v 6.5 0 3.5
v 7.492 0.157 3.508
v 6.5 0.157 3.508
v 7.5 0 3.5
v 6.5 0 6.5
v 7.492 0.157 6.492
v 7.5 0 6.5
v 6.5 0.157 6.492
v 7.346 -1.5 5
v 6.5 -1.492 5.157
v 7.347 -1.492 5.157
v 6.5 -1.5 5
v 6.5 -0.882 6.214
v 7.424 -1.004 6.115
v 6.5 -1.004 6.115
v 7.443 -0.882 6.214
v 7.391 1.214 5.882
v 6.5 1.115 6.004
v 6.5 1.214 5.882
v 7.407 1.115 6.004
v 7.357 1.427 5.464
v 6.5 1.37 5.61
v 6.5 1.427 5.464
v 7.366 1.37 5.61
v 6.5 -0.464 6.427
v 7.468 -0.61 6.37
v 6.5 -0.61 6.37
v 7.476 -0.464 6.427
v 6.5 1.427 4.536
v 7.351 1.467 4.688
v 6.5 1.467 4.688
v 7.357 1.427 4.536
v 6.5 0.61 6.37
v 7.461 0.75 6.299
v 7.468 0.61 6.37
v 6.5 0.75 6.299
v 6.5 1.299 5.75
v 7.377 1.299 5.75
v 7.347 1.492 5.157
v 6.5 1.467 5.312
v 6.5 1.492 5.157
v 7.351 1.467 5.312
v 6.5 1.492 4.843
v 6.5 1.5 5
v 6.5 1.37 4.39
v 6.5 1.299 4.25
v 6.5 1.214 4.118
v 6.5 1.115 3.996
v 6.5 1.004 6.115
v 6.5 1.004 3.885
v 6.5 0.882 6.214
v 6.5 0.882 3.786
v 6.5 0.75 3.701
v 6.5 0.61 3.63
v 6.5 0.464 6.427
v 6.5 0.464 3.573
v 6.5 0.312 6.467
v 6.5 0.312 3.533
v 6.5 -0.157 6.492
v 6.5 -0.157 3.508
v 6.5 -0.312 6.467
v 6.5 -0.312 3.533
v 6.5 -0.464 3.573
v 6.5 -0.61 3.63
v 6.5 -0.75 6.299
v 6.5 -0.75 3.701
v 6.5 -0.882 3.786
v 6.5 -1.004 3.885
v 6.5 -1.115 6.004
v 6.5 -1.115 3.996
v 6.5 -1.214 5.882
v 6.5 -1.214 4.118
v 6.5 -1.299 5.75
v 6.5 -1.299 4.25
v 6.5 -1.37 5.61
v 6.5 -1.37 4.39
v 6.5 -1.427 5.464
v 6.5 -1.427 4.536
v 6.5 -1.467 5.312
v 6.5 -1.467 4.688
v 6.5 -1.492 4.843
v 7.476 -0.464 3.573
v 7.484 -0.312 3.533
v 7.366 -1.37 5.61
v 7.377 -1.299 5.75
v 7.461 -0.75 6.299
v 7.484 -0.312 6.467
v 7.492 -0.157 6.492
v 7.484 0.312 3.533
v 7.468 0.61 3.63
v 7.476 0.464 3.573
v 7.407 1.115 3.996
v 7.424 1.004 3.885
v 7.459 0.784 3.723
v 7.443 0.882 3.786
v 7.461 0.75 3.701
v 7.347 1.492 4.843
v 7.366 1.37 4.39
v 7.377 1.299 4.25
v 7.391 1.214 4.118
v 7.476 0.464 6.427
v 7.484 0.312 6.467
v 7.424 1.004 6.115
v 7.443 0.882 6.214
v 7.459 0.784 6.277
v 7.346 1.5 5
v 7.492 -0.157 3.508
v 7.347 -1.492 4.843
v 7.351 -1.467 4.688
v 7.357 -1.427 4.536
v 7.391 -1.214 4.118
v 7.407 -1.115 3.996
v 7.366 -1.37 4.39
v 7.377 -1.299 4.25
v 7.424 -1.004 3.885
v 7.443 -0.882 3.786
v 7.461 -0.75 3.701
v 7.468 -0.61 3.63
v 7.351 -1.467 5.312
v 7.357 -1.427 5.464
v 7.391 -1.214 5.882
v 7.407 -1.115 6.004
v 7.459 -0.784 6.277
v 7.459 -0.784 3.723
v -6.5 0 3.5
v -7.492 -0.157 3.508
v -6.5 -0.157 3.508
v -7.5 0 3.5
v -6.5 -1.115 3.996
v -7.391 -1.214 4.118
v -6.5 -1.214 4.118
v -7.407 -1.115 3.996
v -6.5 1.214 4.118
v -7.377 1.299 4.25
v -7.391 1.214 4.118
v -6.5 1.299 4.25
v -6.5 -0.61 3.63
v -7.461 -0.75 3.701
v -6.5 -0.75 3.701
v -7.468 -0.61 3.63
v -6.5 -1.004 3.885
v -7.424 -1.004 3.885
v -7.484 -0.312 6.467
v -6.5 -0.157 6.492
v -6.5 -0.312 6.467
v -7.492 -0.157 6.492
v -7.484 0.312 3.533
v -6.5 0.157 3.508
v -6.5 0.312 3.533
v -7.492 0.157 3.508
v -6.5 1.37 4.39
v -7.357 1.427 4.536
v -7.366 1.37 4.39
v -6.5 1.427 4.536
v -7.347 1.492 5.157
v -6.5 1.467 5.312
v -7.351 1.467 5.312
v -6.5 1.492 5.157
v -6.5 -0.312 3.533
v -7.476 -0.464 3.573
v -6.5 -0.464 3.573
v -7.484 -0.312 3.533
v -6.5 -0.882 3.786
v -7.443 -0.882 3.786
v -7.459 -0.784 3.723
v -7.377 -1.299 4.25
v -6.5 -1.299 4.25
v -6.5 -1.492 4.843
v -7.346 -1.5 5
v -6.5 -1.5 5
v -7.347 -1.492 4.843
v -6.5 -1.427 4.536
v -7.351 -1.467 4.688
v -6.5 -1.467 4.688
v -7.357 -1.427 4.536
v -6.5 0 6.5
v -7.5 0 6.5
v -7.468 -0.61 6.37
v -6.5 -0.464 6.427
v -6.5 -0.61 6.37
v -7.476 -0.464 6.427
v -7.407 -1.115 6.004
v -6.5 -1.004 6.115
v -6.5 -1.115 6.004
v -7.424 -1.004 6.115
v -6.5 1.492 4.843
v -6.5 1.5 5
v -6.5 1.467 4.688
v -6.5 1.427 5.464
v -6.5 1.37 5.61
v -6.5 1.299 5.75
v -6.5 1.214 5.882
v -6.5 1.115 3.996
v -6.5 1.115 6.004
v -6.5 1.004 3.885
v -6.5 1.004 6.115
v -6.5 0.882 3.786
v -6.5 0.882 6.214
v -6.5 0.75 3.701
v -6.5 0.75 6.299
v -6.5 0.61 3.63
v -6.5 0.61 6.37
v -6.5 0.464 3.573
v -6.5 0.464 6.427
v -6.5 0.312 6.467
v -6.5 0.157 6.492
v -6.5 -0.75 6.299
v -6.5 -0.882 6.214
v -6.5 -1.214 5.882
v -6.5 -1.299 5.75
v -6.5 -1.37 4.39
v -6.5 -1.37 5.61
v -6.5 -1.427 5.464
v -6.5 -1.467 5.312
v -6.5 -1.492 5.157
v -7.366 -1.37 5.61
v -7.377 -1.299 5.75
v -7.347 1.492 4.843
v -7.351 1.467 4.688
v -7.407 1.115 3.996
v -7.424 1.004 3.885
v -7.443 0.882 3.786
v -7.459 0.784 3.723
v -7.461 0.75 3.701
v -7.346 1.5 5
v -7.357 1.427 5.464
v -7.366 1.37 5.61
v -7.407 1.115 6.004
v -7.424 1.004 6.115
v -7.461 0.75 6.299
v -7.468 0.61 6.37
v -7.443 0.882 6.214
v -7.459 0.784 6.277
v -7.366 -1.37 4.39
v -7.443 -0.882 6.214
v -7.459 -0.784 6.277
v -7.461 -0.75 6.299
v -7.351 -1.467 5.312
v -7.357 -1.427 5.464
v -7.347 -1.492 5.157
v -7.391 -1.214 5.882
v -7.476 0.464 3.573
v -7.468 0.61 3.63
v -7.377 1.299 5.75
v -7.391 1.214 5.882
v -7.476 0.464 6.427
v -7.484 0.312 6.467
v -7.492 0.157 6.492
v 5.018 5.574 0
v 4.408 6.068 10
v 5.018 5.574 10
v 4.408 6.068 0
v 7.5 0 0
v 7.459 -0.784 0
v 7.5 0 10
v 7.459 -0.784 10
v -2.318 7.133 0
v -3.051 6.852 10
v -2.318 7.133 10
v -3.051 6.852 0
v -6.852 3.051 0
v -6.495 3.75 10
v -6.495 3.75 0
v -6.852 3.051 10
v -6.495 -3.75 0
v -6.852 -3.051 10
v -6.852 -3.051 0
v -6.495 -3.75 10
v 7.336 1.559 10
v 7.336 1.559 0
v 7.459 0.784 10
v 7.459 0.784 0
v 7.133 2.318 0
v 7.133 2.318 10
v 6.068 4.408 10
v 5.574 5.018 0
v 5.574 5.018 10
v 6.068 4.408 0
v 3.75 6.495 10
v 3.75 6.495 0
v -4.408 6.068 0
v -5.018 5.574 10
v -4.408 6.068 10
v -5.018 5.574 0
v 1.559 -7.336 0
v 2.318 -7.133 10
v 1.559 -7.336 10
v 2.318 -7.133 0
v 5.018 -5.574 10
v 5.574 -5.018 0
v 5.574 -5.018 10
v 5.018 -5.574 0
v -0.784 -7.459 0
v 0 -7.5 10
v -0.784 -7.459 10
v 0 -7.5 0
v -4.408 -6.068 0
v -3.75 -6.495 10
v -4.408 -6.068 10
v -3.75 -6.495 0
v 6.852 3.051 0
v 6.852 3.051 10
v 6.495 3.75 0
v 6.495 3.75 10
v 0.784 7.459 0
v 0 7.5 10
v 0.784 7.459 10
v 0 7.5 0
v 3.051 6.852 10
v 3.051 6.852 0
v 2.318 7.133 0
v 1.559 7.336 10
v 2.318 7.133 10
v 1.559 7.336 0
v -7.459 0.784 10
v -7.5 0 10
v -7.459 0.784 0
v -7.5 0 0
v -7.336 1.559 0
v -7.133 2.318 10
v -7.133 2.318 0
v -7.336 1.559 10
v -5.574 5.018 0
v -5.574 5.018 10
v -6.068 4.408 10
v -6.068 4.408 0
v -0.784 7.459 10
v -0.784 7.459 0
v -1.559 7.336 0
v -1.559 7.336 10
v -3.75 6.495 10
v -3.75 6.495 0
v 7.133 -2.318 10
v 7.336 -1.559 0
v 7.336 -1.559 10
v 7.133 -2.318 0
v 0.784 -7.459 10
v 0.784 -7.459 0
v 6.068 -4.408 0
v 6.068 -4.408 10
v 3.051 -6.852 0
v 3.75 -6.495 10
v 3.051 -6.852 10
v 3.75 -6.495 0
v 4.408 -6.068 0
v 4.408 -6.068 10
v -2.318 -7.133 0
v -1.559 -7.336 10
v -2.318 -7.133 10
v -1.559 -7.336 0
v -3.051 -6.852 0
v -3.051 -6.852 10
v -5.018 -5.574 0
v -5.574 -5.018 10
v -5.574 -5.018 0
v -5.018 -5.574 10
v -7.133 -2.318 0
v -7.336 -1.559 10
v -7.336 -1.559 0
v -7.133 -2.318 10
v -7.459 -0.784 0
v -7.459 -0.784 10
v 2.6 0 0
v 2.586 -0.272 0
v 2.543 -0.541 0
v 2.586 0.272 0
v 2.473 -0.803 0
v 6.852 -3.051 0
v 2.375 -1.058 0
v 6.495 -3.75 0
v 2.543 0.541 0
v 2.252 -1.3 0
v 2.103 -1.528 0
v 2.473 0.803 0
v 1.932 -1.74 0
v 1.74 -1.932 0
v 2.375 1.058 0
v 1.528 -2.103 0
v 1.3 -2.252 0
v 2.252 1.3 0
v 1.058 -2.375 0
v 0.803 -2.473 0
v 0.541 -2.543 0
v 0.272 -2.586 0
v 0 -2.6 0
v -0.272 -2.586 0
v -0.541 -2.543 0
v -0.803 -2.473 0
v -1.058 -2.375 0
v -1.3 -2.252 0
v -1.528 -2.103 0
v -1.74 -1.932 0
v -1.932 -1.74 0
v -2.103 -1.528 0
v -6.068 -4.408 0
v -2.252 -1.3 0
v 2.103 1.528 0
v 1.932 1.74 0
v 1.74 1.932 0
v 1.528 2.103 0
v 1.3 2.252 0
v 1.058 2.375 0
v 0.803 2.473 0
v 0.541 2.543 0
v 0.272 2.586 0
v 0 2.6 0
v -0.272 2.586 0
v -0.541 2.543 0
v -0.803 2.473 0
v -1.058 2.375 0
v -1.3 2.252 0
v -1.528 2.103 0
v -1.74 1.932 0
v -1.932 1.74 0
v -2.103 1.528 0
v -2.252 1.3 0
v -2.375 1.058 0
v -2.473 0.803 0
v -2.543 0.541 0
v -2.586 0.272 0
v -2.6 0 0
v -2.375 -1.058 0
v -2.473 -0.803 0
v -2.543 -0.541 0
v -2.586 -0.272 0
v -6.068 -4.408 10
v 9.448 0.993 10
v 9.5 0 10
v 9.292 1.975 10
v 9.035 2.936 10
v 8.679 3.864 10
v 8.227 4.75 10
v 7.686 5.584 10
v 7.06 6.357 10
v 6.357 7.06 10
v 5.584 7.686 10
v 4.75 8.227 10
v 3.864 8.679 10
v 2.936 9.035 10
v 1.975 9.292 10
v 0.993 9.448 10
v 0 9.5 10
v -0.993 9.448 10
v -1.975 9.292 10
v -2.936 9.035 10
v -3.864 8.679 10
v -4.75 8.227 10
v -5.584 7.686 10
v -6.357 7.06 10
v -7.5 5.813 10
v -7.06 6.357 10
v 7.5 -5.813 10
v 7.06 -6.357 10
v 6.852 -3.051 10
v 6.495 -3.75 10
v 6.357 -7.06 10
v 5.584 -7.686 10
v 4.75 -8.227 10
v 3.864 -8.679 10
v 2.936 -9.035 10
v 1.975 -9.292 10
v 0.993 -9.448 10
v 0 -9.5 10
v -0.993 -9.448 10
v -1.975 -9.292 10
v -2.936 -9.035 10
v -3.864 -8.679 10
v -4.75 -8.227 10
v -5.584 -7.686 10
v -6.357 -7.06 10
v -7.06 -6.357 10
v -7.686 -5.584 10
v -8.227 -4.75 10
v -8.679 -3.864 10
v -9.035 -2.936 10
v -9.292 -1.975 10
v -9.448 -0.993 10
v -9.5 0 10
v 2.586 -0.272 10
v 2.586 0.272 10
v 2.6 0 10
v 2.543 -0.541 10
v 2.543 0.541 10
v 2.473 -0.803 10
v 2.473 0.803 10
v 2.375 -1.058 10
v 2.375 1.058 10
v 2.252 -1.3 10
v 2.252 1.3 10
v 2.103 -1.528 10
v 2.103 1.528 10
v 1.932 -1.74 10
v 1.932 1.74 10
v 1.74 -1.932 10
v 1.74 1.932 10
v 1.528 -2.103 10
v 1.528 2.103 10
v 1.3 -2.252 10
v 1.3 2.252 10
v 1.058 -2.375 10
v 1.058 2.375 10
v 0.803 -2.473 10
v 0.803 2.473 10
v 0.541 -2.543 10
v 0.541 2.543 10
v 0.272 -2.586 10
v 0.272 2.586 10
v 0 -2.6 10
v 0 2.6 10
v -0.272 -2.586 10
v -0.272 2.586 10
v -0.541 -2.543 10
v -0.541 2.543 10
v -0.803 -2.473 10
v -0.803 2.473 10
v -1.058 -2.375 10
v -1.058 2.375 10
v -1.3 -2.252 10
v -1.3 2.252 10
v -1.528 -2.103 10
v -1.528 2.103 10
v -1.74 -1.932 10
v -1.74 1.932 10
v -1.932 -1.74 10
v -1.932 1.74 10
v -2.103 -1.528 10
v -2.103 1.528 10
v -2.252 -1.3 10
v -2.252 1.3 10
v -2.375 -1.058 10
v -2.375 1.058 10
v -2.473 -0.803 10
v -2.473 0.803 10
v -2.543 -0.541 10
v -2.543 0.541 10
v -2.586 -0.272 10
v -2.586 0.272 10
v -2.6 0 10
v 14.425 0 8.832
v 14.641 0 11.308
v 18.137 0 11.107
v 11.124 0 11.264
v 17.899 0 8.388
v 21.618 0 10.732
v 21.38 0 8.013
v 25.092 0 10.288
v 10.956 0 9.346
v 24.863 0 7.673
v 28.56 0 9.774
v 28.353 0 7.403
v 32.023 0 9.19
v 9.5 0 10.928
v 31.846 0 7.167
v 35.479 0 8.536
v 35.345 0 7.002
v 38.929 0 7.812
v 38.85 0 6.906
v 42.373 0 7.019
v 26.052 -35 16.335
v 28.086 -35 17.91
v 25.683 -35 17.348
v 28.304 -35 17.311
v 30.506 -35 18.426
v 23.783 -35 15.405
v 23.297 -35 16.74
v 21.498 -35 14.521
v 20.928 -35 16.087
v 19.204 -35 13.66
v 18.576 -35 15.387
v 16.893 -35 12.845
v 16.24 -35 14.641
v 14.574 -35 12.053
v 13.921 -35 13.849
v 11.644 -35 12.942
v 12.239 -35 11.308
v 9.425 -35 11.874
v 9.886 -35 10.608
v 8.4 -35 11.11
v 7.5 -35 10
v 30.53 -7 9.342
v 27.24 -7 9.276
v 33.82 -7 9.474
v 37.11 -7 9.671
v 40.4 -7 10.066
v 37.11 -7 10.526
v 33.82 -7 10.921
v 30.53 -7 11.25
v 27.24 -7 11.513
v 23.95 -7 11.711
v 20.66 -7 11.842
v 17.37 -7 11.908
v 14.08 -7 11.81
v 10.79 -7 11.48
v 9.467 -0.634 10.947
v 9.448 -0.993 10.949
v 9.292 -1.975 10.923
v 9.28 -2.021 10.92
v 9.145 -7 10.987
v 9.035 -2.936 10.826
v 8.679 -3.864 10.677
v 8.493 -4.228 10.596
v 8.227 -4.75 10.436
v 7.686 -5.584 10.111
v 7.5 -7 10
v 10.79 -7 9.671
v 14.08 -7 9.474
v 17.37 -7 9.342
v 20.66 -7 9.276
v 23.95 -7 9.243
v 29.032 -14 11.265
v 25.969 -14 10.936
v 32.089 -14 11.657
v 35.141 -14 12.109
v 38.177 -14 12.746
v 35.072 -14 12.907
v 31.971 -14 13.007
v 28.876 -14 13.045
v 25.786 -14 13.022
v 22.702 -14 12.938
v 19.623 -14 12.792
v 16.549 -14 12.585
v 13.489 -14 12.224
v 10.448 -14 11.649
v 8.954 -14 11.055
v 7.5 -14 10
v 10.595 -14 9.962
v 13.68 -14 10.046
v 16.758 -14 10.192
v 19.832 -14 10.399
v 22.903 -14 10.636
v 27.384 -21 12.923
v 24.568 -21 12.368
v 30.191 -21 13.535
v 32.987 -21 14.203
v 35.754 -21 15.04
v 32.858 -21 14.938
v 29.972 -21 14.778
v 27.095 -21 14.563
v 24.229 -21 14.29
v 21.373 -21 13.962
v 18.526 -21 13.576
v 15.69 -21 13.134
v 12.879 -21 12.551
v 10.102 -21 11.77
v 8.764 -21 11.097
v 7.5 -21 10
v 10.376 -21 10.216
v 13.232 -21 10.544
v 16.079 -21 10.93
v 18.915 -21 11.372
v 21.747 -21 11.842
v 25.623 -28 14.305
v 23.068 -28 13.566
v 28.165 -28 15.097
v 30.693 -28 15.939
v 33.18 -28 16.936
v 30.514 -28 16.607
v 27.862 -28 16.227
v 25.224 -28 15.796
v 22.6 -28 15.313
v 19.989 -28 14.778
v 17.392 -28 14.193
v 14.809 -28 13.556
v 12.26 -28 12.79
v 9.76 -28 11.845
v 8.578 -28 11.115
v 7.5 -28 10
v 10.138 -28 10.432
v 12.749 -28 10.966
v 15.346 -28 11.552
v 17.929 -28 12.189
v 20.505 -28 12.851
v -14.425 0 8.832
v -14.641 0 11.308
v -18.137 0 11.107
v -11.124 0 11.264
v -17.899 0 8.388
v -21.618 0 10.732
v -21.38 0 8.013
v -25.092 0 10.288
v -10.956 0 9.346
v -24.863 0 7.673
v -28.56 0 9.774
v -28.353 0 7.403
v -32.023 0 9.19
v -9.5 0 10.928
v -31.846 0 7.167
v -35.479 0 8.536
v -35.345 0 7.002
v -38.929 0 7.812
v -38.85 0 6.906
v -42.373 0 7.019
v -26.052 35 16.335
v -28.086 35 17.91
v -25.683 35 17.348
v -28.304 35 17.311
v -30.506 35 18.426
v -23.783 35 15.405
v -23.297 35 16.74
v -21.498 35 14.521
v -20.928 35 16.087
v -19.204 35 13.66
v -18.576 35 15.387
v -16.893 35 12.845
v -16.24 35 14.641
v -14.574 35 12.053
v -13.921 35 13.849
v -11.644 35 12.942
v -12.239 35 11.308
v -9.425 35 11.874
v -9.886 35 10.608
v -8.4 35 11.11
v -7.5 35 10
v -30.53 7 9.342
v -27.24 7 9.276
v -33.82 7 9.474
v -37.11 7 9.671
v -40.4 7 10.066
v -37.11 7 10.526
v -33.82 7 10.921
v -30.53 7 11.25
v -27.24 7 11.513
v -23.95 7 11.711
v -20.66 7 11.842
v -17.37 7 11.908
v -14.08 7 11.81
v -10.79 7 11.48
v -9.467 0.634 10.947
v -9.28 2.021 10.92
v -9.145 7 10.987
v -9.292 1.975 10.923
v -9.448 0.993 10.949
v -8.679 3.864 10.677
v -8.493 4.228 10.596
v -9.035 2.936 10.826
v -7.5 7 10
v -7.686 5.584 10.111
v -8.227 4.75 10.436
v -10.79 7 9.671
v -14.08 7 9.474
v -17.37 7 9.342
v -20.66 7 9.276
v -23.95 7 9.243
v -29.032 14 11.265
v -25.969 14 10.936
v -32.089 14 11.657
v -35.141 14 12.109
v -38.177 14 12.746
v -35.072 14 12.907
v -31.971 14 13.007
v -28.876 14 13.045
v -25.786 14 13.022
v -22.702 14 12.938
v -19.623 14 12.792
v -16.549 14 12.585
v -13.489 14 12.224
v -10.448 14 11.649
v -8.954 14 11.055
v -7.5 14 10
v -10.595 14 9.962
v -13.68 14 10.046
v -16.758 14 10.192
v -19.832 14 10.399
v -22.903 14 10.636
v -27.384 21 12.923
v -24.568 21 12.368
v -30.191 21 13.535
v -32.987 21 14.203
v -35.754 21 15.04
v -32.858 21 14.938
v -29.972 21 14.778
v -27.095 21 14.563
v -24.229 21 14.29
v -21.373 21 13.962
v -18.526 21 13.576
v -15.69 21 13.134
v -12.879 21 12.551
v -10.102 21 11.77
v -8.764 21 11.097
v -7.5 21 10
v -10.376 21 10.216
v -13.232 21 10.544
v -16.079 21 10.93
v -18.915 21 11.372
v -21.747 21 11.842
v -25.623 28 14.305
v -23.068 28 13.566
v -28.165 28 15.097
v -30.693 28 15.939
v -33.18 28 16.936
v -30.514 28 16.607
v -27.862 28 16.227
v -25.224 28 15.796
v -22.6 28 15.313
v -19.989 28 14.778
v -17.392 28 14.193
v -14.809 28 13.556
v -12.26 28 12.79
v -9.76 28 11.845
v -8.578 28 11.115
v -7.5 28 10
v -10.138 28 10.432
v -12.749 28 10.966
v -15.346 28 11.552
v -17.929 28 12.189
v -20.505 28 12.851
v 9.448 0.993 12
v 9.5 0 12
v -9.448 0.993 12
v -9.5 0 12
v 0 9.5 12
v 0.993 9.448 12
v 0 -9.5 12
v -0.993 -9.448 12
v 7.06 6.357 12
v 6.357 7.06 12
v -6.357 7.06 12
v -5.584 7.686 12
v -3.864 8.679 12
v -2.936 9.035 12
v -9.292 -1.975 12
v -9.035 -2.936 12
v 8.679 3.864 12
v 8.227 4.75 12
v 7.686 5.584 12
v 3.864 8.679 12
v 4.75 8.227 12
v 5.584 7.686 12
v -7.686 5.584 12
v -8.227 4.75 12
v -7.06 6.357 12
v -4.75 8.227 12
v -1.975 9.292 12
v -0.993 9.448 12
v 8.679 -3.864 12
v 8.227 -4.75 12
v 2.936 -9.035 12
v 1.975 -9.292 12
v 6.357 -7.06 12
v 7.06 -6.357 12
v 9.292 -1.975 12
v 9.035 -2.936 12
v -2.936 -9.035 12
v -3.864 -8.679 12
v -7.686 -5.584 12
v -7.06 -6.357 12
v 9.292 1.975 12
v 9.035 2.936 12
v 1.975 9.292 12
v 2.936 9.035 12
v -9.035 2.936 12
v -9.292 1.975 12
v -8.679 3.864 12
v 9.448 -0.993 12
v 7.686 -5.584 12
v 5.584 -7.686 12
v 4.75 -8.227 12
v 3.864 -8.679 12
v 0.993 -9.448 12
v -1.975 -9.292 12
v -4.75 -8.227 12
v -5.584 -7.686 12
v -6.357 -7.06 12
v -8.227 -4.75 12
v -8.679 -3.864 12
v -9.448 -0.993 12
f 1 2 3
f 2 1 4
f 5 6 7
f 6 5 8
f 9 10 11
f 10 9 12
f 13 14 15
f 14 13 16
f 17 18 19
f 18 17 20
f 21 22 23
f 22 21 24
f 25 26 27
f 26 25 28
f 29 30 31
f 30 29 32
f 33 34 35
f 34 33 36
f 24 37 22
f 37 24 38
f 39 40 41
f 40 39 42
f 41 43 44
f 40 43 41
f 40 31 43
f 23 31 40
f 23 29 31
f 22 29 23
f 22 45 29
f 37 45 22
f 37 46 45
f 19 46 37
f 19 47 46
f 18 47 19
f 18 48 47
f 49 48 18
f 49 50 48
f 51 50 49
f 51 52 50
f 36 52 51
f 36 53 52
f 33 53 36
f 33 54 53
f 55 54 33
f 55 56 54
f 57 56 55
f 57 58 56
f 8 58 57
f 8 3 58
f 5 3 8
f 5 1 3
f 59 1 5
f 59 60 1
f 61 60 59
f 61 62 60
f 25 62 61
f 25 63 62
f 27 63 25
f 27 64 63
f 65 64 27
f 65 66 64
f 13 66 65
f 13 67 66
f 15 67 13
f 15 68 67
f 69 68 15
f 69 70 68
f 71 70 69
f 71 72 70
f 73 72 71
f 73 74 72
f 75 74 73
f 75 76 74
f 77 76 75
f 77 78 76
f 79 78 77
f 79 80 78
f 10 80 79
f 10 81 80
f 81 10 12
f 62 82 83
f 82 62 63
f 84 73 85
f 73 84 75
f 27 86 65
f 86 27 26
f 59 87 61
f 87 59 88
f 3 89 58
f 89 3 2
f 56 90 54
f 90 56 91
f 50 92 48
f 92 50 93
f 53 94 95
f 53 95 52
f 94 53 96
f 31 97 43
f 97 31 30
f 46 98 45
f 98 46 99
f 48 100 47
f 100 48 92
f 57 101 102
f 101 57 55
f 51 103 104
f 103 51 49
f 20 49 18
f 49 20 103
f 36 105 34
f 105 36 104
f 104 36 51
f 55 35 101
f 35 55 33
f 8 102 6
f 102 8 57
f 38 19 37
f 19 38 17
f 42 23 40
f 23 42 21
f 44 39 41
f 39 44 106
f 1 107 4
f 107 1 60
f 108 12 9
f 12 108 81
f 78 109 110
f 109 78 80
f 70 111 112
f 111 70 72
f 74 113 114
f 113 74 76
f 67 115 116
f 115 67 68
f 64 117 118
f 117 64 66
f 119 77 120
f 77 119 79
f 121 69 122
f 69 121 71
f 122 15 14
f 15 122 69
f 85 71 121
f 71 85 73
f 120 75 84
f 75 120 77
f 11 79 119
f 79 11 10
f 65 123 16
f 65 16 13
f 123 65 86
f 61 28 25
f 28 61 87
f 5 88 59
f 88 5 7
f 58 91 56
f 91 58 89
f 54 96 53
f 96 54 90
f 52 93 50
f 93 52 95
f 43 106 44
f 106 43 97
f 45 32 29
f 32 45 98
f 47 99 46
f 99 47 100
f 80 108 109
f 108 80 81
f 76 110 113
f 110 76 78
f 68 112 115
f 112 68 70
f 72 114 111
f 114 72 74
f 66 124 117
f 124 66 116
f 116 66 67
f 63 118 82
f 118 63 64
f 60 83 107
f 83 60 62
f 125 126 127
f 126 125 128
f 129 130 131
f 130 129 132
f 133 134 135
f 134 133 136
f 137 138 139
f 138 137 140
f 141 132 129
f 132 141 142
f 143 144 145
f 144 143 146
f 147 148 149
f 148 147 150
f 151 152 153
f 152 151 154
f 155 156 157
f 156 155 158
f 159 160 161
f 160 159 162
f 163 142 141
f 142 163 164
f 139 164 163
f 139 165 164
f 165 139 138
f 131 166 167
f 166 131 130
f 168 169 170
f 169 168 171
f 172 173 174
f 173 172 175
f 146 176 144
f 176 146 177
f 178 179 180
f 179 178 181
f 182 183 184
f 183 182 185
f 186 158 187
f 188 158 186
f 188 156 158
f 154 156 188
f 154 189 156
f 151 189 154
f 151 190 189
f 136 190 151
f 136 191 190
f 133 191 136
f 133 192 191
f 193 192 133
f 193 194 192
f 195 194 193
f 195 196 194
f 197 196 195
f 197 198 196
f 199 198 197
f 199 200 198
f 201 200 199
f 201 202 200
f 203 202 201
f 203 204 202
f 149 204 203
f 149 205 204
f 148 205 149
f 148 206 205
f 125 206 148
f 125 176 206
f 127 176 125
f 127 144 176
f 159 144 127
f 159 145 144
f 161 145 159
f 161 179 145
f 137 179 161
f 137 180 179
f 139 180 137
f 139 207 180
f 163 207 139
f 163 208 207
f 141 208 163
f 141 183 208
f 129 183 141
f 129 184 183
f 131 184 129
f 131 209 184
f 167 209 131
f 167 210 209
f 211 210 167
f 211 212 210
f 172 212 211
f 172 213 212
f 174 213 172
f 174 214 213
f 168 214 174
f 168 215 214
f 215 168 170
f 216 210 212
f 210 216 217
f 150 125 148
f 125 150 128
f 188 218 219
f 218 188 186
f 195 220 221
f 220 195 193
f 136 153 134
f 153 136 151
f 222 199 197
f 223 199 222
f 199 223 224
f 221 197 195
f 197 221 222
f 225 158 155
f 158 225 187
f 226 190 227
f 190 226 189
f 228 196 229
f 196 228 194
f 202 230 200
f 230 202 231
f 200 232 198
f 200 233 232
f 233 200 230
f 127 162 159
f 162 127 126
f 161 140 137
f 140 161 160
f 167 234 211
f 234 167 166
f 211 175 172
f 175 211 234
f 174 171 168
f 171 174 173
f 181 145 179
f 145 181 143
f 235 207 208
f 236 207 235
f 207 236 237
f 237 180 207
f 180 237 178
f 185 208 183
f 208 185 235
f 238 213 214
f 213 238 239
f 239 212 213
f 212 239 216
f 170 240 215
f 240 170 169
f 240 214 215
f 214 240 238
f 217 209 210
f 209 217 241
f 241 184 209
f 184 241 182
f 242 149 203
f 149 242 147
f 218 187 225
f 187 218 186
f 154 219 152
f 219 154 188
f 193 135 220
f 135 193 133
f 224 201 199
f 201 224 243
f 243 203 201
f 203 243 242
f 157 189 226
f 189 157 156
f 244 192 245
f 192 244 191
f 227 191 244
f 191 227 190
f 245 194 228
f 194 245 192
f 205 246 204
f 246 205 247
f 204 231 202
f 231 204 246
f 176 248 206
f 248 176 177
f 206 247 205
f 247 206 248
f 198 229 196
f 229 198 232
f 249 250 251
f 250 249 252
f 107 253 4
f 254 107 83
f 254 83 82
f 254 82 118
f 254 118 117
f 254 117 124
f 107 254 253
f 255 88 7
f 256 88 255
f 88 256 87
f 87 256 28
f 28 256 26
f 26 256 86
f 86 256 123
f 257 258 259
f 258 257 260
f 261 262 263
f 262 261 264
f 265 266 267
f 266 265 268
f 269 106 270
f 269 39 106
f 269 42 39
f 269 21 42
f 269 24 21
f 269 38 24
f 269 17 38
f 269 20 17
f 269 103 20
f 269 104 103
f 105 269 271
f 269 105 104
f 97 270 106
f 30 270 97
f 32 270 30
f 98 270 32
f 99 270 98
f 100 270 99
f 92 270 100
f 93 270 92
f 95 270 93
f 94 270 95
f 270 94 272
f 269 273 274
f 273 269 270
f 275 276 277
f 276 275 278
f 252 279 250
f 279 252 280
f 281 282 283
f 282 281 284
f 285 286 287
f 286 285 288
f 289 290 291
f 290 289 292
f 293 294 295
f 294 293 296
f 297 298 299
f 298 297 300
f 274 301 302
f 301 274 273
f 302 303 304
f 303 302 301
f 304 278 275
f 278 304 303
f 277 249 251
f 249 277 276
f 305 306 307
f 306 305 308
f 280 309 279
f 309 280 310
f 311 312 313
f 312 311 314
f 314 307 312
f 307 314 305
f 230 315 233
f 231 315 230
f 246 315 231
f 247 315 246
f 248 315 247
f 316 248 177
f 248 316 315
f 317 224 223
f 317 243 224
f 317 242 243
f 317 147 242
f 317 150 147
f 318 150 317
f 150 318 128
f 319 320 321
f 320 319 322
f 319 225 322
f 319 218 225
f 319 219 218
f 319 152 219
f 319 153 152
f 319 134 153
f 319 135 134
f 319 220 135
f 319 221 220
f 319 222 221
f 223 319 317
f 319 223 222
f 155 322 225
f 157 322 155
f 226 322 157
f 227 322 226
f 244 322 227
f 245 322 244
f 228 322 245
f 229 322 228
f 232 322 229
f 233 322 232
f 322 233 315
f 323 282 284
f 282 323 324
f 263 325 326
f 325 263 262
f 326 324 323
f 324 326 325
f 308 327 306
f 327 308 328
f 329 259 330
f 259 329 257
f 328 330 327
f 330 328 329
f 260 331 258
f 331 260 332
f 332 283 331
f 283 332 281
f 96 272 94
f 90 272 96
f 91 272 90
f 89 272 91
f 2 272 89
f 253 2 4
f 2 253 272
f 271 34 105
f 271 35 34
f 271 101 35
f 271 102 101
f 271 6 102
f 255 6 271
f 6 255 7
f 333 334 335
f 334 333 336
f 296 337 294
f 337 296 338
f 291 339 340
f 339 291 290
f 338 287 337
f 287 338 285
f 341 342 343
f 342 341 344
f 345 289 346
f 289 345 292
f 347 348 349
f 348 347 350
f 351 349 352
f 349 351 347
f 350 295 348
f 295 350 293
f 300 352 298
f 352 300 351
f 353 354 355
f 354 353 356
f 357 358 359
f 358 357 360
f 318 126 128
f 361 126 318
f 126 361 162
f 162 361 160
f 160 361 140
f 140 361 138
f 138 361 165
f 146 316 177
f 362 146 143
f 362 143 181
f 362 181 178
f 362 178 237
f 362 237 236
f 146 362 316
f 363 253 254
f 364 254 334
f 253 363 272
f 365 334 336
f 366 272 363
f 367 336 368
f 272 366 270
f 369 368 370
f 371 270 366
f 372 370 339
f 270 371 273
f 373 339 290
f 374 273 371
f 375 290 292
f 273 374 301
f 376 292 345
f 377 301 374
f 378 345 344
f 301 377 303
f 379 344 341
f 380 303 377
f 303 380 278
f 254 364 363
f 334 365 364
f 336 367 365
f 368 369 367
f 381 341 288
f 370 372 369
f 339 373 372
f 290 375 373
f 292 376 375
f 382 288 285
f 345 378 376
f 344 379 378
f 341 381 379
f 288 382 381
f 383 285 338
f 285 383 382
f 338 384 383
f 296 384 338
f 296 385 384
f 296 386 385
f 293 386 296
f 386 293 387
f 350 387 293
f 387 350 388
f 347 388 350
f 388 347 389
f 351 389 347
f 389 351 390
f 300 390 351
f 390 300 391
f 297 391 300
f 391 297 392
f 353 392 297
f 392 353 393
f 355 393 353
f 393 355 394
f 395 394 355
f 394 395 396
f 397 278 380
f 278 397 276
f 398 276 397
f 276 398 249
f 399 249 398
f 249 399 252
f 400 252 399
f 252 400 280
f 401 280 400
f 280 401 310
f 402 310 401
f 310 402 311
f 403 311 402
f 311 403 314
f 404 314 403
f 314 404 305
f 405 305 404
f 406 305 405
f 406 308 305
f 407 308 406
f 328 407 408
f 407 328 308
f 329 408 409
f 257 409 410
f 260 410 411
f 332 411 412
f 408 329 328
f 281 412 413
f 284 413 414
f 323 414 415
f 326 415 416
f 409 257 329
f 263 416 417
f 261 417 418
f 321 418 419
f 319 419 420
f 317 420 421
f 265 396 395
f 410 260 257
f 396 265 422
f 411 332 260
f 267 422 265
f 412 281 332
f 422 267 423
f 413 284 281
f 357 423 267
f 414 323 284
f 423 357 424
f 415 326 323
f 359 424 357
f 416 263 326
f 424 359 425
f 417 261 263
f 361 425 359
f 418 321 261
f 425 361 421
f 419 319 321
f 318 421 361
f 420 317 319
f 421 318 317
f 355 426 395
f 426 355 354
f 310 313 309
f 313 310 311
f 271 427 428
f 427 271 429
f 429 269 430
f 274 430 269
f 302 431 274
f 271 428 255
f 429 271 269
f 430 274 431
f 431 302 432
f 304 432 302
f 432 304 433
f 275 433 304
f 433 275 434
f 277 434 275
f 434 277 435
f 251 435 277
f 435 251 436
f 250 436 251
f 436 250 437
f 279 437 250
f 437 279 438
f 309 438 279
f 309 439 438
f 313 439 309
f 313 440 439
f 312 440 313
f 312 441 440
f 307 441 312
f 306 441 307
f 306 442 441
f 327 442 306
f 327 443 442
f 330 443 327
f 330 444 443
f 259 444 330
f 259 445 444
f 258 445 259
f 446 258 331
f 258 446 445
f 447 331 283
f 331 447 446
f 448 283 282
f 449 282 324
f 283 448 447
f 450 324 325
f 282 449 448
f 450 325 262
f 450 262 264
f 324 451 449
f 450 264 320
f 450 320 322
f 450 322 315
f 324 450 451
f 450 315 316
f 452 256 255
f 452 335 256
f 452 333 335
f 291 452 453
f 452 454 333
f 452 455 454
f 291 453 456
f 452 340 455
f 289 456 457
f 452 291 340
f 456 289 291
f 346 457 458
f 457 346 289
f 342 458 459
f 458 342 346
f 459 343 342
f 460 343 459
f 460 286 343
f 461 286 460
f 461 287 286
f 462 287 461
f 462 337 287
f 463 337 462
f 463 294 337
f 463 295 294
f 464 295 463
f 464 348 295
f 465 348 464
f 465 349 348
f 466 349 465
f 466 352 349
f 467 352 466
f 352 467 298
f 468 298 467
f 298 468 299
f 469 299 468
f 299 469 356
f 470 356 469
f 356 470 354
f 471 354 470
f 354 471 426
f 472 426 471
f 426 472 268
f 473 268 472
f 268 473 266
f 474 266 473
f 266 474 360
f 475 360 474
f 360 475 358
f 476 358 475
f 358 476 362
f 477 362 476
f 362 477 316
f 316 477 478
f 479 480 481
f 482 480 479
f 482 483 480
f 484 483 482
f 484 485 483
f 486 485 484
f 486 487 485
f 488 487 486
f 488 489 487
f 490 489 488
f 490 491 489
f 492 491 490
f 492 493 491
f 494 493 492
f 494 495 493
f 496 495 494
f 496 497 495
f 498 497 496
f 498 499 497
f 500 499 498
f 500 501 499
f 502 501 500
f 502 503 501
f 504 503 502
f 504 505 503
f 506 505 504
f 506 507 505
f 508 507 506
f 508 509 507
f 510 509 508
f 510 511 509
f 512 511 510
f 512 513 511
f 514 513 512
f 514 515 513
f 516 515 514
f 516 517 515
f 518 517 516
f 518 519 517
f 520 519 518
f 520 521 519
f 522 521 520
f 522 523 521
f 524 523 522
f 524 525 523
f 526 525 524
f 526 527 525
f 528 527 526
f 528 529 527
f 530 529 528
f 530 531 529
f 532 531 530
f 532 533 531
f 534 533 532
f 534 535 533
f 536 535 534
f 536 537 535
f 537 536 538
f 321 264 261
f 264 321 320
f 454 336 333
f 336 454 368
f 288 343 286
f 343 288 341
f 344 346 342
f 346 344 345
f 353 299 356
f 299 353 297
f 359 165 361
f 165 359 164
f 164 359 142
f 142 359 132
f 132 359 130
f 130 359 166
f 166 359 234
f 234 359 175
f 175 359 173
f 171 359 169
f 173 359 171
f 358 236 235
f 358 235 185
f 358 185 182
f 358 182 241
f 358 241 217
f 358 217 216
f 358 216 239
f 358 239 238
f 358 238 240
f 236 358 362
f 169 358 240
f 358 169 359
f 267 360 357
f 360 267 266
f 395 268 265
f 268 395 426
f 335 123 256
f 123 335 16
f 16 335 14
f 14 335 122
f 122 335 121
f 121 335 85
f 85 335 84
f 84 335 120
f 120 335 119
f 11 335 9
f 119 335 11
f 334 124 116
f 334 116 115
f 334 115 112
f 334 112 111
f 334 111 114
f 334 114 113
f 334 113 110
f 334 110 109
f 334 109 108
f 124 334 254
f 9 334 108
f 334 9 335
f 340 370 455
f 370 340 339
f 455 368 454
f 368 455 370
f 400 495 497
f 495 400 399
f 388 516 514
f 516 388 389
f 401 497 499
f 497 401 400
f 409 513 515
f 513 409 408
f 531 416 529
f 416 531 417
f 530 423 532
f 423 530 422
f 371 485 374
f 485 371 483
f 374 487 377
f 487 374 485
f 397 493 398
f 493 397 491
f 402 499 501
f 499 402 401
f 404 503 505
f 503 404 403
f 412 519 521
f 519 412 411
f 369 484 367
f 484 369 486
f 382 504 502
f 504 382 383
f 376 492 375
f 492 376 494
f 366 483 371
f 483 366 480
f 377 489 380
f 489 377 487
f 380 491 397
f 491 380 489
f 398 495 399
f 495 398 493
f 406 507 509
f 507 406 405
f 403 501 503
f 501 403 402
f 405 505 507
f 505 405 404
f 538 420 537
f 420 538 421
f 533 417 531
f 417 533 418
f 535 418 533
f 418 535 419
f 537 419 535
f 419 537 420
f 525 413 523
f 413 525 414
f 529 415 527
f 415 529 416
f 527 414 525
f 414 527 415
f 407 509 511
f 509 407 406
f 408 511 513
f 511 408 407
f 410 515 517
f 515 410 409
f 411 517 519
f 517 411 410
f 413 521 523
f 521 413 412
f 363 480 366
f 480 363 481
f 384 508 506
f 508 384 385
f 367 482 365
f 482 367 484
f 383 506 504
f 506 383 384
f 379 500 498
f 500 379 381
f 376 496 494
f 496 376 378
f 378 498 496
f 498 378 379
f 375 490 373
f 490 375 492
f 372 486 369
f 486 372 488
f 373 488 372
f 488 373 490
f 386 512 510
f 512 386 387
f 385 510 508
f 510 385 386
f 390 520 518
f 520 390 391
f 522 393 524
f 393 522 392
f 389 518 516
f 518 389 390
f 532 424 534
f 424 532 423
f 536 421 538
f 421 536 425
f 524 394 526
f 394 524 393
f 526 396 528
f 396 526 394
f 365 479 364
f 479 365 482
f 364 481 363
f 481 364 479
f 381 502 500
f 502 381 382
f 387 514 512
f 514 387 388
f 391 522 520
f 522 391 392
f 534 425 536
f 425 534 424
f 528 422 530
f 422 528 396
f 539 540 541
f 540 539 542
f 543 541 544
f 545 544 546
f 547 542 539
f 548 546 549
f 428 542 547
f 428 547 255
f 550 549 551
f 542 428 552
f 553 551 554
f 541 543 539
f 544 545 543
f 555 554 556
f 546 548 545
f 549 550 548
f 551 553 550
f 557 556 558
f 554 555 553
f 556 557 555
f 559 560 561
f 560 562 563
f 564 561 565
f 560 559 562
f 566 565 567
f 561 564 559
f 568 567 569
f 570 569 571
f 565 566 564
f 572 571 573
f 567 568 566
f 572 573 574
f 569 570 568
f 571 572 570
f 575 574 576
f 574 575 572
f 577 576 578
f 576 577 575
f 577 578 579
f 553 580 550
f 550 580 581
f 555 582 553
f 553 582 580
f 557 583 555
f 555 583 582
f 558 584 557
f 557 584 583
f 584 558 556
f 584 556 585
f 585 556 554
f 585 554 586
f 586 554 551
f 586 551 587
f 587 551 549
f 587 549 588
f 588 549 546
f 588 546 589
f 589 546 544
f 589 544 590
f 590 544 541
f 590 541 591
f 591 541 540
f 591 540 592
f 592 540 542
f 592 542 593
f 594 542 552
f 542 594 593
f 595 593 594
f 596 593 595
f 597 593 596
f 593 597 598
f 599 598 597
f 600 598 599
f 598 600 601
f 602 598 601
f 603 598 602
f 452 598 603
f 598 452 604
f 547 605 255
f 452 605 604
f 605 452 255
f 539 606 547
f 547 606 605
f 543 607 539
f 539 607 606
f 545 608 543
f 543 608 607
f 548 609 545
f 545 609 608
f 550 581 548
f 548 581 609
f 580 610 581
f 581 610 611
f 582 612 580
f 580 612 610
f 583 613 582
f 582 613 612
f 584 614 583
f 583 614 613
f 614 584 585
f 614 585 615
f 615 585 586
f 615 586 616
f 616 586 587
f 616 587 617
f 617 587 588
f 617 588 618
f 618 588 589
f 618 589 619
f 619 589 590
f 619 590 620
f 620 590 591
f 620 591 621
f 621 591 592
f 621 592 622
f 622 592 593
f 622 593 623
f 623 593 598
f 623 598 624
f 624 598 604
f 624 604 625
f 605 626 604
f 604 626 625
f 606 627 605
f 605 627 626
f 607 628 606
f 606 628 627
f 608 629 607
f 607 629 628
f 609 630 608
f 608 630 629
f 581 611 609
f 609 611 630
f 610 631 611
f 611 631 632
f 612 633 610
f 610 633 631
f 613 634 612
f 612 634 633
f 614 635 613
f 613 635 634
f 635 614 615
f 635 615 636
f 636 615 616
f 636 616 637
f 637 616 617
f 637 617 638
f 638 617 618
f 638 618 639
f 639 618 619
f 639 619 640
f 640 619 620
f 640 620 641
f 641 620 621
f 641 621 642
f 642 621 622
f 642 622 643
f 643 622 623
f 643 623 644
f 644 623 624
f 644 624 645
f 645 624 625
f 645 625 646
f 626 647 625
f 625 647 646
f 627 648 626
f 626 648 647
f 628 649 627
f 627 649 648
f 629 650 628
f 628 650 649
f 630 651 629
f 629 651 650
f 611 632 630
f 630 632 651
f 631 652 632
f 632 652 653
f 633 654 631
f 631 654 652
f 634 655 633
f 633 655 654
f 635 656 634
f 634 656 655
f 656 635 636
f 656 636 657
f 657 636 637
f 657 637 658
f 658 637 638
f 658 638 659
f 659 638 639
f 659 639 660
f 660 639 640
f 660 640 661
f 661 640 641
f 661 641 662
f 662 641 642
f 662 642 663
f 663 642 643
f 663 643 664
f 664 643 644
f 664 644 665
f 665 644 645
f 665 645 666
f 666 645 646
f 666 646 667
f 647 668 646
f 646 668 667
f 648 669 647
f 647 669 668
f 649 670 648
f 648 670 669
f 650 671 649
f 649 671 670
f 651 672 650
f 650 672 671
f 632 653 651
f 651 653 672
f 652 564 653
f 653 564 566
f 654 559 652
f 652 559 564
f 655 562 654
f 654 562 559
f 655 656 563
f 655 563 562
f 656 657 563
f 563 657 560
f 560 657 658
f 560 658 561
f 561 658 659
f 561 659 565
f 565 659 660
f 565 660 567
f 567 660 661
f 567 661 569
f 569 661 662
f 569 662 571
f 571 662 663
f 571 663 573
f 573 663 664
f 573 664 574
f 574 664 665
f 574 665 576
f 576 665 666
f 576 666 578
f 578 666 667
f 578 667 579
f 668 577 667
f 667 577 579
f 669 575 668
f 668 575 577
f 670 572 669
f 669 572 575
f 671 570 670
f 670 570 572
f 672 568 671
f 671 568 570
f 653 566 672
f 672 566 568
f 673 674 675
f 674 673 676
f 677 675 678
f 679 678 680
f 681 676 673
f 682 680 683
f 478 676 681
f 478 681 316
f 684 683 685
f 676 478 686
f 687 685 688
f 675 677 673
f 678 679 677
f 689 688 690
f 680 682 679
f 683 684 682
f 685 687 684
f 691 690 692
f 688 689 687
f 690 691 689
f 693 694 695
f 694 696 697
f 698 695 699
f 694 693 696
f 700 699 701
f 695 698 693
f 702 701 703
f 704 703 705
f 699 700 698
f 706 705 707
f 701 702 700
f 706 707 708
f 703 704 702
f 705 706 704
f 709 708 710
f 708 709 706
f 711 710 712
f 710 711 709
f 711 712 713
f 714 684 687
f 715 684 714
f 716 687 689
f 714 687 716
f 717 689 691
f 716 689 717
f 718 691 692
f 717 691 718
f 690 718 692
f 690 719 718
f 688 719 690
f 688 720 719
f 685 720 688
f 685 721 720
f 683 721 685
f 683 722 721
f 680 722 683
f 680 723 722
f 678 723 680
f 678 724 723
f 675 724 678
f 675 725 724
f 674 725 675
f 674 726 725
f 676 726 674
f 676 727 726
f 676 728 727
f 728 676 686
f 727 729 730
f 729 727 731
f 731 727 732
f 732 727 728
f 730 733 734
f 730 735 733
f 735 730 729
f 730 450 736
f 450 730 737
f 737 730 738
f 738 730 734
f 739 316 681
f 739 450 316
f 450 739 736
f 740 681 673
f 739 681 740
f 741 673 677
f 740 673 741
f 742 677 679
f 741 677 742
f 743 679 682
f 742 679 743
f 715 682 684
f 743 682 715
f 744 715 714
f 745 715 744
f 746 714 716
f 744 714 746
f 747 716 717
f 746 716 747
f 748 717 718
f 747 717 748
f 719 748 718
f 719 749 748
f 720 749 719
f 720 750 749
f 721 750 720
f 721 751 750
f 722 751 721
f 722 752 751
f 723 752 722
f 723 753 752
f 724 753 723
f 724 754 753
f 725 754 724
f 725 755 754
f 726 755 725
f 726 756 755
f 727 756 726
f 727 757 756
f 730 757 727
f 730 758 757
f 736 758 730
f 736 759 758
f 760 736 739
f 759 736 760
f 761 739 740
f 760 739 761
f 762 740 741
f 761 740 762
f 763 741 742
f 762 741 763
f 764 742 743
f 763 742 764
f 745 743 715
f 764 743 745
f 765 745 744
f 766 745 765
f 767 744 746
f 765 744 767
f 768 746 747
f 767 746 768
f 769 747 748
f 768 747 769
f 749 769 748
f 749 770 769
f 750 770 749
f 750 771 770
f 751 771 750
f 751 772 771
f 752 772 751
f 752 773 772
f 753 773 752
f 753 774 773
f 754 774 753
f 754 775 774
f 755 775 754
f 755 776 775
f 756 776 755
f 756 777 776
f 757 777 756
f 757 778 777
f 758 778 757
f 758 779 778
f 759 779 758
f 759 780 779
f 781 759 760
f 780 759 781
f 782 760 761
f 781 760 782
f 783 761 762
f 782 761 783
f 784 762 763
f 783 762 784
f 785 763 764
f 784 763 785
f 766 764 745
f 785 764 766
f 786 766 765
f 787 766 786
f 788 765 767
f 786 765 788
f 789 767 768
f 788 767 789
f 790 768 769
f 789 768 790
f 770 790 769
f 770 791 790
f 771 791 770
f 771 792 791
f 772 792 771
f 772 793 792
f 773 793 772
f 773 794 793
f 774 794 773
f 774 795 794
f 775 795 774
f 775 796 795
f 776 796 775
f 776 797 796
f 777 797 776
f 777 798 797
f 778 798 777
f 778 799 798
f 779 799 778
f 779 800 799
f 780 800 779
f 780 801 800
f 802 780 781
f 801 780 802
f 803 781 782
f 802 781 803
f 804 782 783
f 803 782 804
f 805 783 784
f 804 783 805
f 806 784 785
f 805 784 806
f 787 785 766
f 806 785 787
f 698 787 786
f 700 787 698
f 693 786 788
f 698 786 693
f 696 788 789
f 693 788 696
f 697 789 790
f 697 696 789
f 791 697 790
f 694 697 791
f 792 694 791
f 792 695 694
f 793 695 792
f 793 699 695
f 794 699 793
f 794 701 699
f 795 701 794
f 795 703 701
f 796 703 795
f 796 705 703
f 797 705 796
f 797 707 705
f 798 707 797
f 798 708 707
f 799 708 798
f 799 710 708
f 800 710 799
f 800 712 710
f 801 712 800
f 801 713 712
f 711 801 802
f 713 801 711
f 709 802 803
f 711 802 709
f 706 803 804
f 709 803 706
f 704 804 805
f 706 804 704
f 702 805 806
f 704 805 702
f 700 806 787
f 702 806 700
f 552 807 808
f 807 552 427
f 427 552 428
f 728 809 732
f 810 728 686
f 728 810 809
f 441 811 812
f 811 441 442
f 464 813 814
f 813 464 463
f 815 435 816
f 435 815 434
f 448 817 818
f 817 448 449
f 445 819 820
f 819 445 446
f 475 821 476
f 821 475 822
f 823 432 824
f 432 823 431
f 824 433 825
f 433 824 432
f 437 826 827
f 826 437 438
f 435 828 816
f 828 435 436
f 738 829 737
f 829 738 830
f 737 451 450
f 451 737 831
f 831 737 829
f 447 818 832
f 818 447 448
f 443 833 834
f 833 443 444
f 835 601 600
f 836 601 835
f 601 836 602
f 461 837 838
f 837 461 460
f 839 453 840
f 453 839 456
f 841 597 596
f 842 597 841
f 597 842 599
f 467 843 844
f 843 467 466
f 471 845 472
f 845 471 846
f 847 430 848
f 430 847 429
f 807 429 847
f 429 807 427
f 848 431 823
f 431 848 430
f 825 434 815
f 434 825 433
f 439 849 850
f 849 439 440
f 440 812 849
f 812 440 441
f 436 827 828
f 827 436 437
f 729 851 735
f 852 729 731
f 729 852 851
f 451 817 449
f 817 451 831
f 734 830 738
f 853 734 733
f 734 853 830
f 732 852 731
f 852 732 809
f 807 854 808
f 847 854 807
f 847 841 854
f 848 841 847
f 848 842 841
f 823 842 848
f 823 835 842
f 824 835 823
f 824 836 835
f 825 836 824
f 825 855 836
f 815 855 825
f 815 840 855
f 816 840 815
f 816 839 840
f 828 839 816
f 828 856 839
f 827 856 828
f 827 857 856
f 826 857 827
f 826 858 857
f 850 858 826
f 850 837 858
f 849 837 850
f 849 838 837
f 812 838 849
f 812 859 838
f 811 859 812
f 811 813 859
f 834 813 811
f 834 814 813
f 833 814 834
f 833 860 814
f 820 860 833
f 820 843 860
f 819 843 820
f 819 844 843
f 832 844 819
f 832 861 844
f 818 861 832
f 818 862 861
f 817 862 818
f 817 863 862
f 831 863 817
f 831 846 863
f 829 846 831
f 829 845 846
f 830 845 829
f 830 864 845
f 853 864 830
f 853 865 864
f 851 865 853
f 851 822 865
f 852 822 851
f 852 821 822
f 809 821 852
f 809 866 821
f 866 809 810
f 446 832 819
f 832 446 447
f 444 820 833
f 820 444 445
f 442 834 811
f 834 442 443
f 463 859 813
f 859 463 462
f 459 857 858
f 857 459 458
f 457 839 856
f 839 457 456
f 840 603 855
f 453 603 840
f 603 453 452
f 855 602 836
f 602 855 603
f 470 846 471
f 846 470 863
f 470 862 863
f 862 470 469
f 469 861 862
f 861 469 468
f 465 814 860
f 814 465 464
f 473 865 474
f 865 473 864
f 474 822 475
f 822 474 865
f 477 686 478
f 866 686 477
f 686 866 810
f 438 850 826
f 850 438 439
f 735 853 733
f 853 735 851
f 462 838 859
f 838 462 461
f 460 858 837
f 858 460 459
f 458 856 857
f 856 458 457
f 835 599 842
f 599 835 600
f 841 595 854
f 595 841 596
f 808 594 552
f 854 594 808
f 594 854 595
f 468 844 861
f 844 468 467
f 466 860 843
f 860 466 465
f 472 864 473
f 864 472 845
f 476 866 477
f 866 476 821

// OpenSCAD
/*
 * COMPLETE MOTOR + IMPELLER ASSEMBLY
 * For CFD fluid testing and visualization
 * 
 * This model includes:
 *   - Brushless motor (2204-2206 size)
 *   - Motor shaft (5mm)
 *   - Impeller hub
 *   - 3 impeller variants (bladeless, AI-blades, hybrid)
 *   - Mounting plate
 * 
 * Usage:
 *   - Render full assembly: F6
 *   - Export for CFD: Set EXPORT_MODE = "impeller_only"
 *   - Change design: Set IMPELLER_TYPE = "bladeless" | "bladed" | "hybrid"
 */

// ============================================================================
// CONFIGURATION PARAMETERS (AI-Optimizable)
// ============================================================================

// General Settings
$fn = 60;  // Resolution for CFD export (increase to 100 for final)

// Export Mode
EXPORT_MODE = "impeller_only";  // Options: "full_assembly", "impeller_only", "motor_only"

// Impeller Type
IMPELLER_TYPE = "bladed";  // Options: "bladeless", "bladed", "hybrid"

// Motor Specifications (2204-2206 brushless)
MOTOR_DIAMETER = 28;         // mm
MOTOR_HEIGHT = 25;           // mm
MOTOR_SHAFT_DIAMETER = 5;    // mm (standard)
MOTOR_SHAFT_LENGTH = 15;     // mm (extends above motor)
MOTOR_MOUNT_PATTERN = 16;    // mm (16x16 or 19x19 common)
MOTOR_SCREW_DIAMETER = 3;    // M3 screws

// Impeller Parameters - BLADELESS
BLADELESS_OUTER_DIAMETER = 90;    // mm
BLADELESS_AIR_GAP = 0.8;          // mm (optimize: 0.6-1.2)
BLADELESS_THROAT_RATIO = 0.72;    // (optimize: 0.65-0.80)
BLADELESS_EXPANSION_ANGLE = 18;   // degrees (optimize: 12-25)
BLADELESS_RING_THICKNESS = 3;     // mm (optimize: 2-4)
BLADELESS_HEIGHT = 24;            // mm

// Impeller Parameters - BLADED
BLADED_DIAMETER = 85;
BLADED_HUB_DIAMETER = 15;         // mm (optimize: 12-20)
BLADED_BLADE_COUNT = 2;
BLADED_ROOT_CHORD = 35;
BLADED_TIP_CHORD_RATIO = 0.7;    // (optimize: 0.6-0.8)
BLADED_BLADE_THICKNESS = 2;       // mm (optimize: 1.5-3)
BLADED_BLADE_TWIST = -25;
BLADED_ATTACK_ANGLE = -5;
BLADED_BLADE_HEIGHT = 12;         // mm (optimize: 10-15)

// Hub Parameters
HUB_DIAMETER = 15;
HUB_HEIGHT = 10;
HUB_SET_SCREW_DIAMETER = 3;  // M3 set screw

// Mounting Plate
PLATE_SIZE = 50;
PLATE_THICKNESS = 3;

// ============================================================================
// MOTOR MODEL
// ============================================================================

module brushless_motor_2204() {
    color("DarkSlateGray") {
        // Motor can (bell)
        difference() {
            cylinder(h=MOTOR_HEIGHT, d=MOTOR_DIAMETER);
            
            // Hollow inside (weight reduction visualization)
            translate([0, 0, -0.5])
                cylinder(h=MOTOR_HEIGHT - 5, d=MOTOR_DIAMETER - 4);
            
            // Mounting holes
            for(i = [0:3]) {
                rotate([0, 0, i * 90])
                    translate([MOTOR_MOUNT_PATTERN/2, 0, MOTOR_HEIGHT/2])
                        rotate([90, 0, 0])
                            cylinder(h=MOTOR_DIAMETER, d=MOTOR_SCREW_DIAMETER, center=true);
            }
        }
        
        // Motor base
        translate([0, 0, -3])
            cylinder(h=3, d=MOTOR_DIAMETER - 2);
    }
    
    // Motor shaft
    color("Silver")
        translate([0, 0, MOTOR_HEIGHT])
            cylinder(h=MOTOR_SHAFT_LENGTH, d=MOTOR_SHAFT_DIAMETER);
    
    // Shaft tip (for hub attachment)
    color("Silver")
        translate([0, 0, MOTOR_HEIGHT + MOTOR_SHAFT_LENGTH])
            cylinder(h=2, d=MOTOR_SHAFT_DIAMETER - 0.5);
}

// ============================================================================
// IMPELLER HUB
// ============================================================================

module impeller_hub() {
    color("Gray")
    difference() {
        // Hub body
        cylinder(h=HUB_HEIGHT, d=HUB_DIAMETER);
        
        // Shaft hole (5mm + 0.2mm clearance)
        translate([0, 0, -0.5])
            cylinder(h=HUB_HEIGHT + 1, d=MOTOR_SHAFT_DIAMETER + 0.2);
        
        // Set screw holes (2x for balance)
        for(i = [0:1]) {
            rotate([0, 0, i * 180])
                translate([HUB_DIAMETER/2 - 1, 0, HUB_HEIGHT/2])
                    rotate([0, 90, 0])
                        cylinder(h=5, d=HUB_SET_SCREW_DIAMETER);
        }
    }
}

// ============================================================================
// BLADELESS IMPELLER (Dyson-style)
// ============================================================================

module bladeless_impeller() {
    outer_r = BLADELESS_OUTER_DIAMETER / 2;
    throat_r = outer_r * BLADELESS_THROAT_RATIO;
    gap = BLADELESS_AIR_GAP;
    
    color("SkyBlue", 0.7)
    difference() {
        // Outer ring
        rotate_extrude()
            translate([outer_r - BLADELESS_RING_THICKNESS/2, BLADELESS_HEIGHT/2, 0])
                circle(d=BLADELESS_RING_THICKNESS + BLADELESS_HEIGHT);
        
        // Inner air gap (critical for Coanda effect)
        rotate_extrude()
            translate([outer_r - gap - BLADELESS_RING_THICKNESS/2, BLADELESS_HEIGHT/2, 0])
                circle(d=BLADELESS_RING_THICKNESS + BLADELESS_HEIGHT - 2*gap);
    }
    
    // Base plate (connects to hub)
    color("SkyBlue", 0.7)
    translate([0, 0, -2])
        difference() {
            cylinder(h=2, d=outer_r * 2);
            translate([0, 0, -0.5])
                cylinder(h=3, d=HUB_DIAMETER + 1);
        }
    
    // Air inlet (bell-shaped for smooth flow)
    color("SkyBlue", 0.7)
    translate([0, 0, -2]) {
        difference() {
            cylinder(h=15, d1=throat_r * 2, d2=outer_r * 1.8);
            translate([0, 0, -0.5])
                cylinder(h=16, d1=throat_r * 2 - 3, d2=outer_r * 1.8 - 3);
        }
    }
}

// ============================================================================
// AI-OPTIMIZED BLADED IMPELLER (NACA 2412 profile)
// ============================================================================

module naca_2412_blade(chord, height, twist_angle, attack_angle) {
    // Simplified NACA 2412 airfoil profile
    // Using parametric approximation for 3D printing
    
    color("LightSteelBlue", 0.8)
    linear_extrude(height=height, twist=twist_angle, scale=BLADED_TIP_CHORD_RATIO) {
        rotate([0, 0, attack_angle])
        polygon([
            // Upper surface (cambered)
            [0, 0],
            [chord * 0.05, chord * 0.03],
            [chord * 0.1, chord * 0.045],
            [chord * 0.2, chord * 0.055],
            [chord * 0.3, chord * 0.058],
            [chord * 0.4, chord * 0.056],
            [chord * 0.5, chord * 0.052],
            [chord * 0.6, chord * 0.046],
            [chord * 0.7, chord * 0.038],
            [chord * 0.8, chord * 0.028],
            [chord * 0.9, chord * 0.016],
            [chord * 1.0, chord * 0.002],
            // Lower surface (less cambered)
            [chord * 0.9, -chord * 0.010],
            [chord * 0.8, -chord * 0.016],
            [chord * 0.7, -chord * 0.020],
            [chord * 0.6, -chord * 0.022],
            [chord * 0.5, -chord * 0.023],
            [chord * 0.4, -chord * 0.022],
            [chord * 0.3, -chord * 0.020],
            [chord * 0.2, -chord * 0.016],
            [chord * 0.1, -chord * 0.010],
            [chord * 0.05, -chord * 0.005],
        ]);
    }
}

module bladed_impeller() {
    // Blades
    for(i = [0 : BLADED_BLADE_COUNT - 1]) {
        rotate([0, 0, i * (360 / BLADED_BLADE_COUNT)])
            translate([BLADED_HUB_DIAMETER/2, 0, 0])
                rotate([90, 0, 0])
                    naca_2412_blade(
                        BLADED_ROOT_CHORD, 
                        (BLADED_DIAMETER - BLADED_HUB_DIAMETER) / 2,
                        BLADED_BLADE_TWIST,
                        BLADED_ATTACK_ANGLE
                    );
    }
    
    // Hub disk (connects blades)
    color("LightSteelBlue", 0.8)
    cylinder(h=2, d=BLADED_HUB_DIAMETER + 4);
}

// ============================================================================
// HYBRID IMPELLER (Blades inside bladeless ring)
// ============================================================================

module hybrid_impeller() {
    // Outer bladeless ring
    bladeless_impeller();
    
    // Inner bladed impeller (scaled down to fit)
    scale([0.85, 0.85, 1])
        bladed_impeller();
}

// ============================================================================
// MOUNTING PLATE
// ============================================================================

module mounting_plate() {
    color("DimGray")
    difference() {
        // Base plate
        translate([-PLATE_SIZE/2, -PLATE_SIZE/2, 0])
            cube([PLATE_SIZE, PLATE_SIZE, PLATE_THICKNESS]);
        
        // Center hole for motor shaft
        translate([0, 0, -0.5])
            cylinder(h=PLATE_THICKNESS + 1, d=MOTOR_DIAMETER + 2);
        
        // Motor mounting holes
        for(i = [0:3]) {
            rotate([0, 0, i * 90])
                translate([MOTOR_MOUNT_PATTERN/2, 0, -0.5])
                    cylinder(h=PLATE_THICKNESS + 1, d=MOTOR_SCREW_DIAMETER);
        }
    }
}

// ============================================================================
// COMPLETE ASSEMBLY
// ============================================================================

module complete_assembly() {
    // Mounting plate (bottom)
    translate([0, 0, -PLATE_THICKNESS])
        mounting_plate();
    
    // Motor
    translate([0, 0, 0])
        brushless_motor_2204();
    
    // Hub (on shaft)
    translate([0, 0, MOTOR_HEIGHT + MOTOR_SHAFT_LENGTH - 2])
        impeller_hub();
    
    // Impeller (on hub)
    translate([0, 0, MOTOR_HEIGHT + MOTOR_SHAFT_LENGTH + HUB_HEIGHT]) {
        if (IMPELLER_TYPE == "bladeless") {
            bladeless_impeller();
        } else if (IMPELLER_TYPE == "bladed") {
            bladed_impeller();
        } else if (IMPELLER_TYPE == "hybrid") {
            hybrid_impeller();
        }
    }
}

// ============================================================================
// RENDER BASED ON EXPORT MODE
// ============================================================================

if (EXPORT_MODE == "full_assembly") {
    complete_assembly();
} 
else if (EXPORT_MODE == "impeller_only") {
    // For CFD testing - impeller + hub only
    impeller_hub();
    translate([0, 0, HUB_HEIGHT]) {
        if (IMPELLER_TYPE == "bladeless") {
            bladeless_impeller();
        } else if (IMPELLER_TYPE == "bladed") {
            bladed_impeller();
        } else if (IMPELLER_TYPE == "hybrid") {
            hybrid_impeller();
        }
    }
}
else if (EXPORT_MODE == "motor_only") {
    brushless_motor_2204();
}

// ============================================================================
// ANNOTATIONS FOR VISUALIZATION
// ============================================================================

// Uncomment to show dimensions
/*
color("Red", 0.3)
translate([BLADED_DIAMETER/2 + 10, 0, 20])
    text(str("Ø", BLADED_DIAMETER, "mm"), size=5, halign="left");

color("Green", 0.3)
translate([0, BLADED_DIAMETER/2 + 10, 20])
    text(str(BLADED_BLADE_COUNT, " blades"), size=5, halign="center");
*/

// ============================================================================
// EXPORT NOTES
// ============================================================================

/*
 * TO EXPORT FOR CFD TESTING:
 * 
 * 1. Set EXPORT_MODE = "impeller_only"
 * 2. Set IMPELLER_TYPE = "bladeless" (or "bladed" or "hybrid")
 * 3. Press F6 to render
 * 4. File → Export → Export as STL
 * 5. Use filename: impeller_bladeless_fn60.stl
 * 
 * FOR OPTIMIZATION:
 * - Modify parameters at top (marked with "optimize:")
 * - Re-render and export
 * - Upload to SimScale for CFD
 * - Compare results
 * 
 * RECOMMENDED CFD SETTINGS:
 * - Solver: k-omega SST
 * - RPM: 5000, 7000, 9000
 * - Mesh: 3-5M cells
 * - Boundary: Rotating zone on impeller
 */
